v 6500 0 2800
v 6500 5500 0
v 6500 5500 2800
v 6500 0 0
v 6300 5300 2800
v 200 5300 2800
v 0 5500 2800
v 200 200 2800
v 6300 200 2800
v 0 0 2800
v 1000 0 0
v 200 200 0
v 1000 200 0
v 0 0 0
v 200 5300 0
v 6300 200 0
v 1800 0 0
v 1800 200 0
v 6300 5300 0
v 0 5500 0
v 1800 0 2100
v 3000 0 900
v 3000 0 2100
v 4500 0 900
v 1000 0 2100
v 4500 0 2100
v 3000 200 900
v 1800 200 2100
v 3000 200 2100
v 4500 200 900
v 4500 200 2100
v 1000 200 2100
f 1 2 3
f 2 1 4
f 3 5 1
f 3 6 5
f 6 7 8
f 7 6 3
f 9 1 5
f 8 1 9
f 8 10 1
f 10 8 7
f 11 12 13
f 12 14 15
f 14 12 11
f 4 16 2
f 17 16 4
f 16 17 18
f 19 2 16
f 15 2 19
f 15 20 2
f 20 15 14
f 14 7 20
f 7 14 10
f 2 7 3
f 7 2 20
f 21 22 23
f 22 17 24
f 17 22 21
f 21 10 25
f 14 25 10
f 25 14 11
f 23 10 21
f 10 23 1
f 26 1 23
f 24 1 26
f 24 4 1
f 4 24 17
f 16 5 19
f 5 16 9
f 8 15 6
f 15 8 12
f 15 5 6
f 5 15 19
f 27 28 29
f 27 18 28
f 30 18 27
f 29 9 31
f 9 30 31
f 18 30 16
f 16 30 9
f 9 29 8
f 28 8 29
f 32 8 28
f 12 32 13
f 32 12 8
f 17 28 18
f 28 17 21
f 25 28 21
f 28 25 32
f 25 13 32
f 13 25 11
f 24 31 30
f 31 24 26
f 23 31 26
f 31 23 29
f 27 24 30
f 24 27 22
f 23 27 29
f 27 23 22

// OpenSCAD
// Concrete 3D Printed Room - Parametric Design
// All measurements in millimeters (mm)

// === ROOM DIMENSIONS ===
room_length = 6500;        // 5 meters
room_width = 5500;         // 4 meters  
wall_height = 2800;        // 2.8 meters (standard ceiling height)
wall_thickness = 200;      // 20 cm (typical concrete 3D print)

// === DOOR ===
door_width = 800;          // 90 cm (standard door)
door_height = 2100;        // 2.1 meters
door_position = 1000;      // 1 meter from left corner

// === WINDOW ===
window_width = 1500;       // 1.5 meters wide
window_height = 1200;      // 1.2 meters tall
window_position = 3000;    // 3 meters from left corner
window_sill_height = 900;  // 90 cm from floor

// === GEOMETRY ===
module room() {
    difference() {
        // Outer walls (solid block)
        cube([room_length, room_width, wall_height]);
        
        // Interior cavity (hollow out the room)
        translate([wall_thickness, wall_thickness, 0])
            cube([
                room_length - 2*wall_thickness,
                room_width - 2*wall_thickness,
                wall_height + 100  // Extra height to ensure clean cut
            ]);
        
        // Door opening (front wall - Y=0 side)
        translate([door_position, -10, 0])
            cube([door_width, wall_thickness + 20, door_height]);
        
        // Window opening (front wall)
        translate([window_position, -10, window_sill_height])
            cube([window_width, wall_thickness + 20, window_height]);
    }
}

// Generate the room
room();
